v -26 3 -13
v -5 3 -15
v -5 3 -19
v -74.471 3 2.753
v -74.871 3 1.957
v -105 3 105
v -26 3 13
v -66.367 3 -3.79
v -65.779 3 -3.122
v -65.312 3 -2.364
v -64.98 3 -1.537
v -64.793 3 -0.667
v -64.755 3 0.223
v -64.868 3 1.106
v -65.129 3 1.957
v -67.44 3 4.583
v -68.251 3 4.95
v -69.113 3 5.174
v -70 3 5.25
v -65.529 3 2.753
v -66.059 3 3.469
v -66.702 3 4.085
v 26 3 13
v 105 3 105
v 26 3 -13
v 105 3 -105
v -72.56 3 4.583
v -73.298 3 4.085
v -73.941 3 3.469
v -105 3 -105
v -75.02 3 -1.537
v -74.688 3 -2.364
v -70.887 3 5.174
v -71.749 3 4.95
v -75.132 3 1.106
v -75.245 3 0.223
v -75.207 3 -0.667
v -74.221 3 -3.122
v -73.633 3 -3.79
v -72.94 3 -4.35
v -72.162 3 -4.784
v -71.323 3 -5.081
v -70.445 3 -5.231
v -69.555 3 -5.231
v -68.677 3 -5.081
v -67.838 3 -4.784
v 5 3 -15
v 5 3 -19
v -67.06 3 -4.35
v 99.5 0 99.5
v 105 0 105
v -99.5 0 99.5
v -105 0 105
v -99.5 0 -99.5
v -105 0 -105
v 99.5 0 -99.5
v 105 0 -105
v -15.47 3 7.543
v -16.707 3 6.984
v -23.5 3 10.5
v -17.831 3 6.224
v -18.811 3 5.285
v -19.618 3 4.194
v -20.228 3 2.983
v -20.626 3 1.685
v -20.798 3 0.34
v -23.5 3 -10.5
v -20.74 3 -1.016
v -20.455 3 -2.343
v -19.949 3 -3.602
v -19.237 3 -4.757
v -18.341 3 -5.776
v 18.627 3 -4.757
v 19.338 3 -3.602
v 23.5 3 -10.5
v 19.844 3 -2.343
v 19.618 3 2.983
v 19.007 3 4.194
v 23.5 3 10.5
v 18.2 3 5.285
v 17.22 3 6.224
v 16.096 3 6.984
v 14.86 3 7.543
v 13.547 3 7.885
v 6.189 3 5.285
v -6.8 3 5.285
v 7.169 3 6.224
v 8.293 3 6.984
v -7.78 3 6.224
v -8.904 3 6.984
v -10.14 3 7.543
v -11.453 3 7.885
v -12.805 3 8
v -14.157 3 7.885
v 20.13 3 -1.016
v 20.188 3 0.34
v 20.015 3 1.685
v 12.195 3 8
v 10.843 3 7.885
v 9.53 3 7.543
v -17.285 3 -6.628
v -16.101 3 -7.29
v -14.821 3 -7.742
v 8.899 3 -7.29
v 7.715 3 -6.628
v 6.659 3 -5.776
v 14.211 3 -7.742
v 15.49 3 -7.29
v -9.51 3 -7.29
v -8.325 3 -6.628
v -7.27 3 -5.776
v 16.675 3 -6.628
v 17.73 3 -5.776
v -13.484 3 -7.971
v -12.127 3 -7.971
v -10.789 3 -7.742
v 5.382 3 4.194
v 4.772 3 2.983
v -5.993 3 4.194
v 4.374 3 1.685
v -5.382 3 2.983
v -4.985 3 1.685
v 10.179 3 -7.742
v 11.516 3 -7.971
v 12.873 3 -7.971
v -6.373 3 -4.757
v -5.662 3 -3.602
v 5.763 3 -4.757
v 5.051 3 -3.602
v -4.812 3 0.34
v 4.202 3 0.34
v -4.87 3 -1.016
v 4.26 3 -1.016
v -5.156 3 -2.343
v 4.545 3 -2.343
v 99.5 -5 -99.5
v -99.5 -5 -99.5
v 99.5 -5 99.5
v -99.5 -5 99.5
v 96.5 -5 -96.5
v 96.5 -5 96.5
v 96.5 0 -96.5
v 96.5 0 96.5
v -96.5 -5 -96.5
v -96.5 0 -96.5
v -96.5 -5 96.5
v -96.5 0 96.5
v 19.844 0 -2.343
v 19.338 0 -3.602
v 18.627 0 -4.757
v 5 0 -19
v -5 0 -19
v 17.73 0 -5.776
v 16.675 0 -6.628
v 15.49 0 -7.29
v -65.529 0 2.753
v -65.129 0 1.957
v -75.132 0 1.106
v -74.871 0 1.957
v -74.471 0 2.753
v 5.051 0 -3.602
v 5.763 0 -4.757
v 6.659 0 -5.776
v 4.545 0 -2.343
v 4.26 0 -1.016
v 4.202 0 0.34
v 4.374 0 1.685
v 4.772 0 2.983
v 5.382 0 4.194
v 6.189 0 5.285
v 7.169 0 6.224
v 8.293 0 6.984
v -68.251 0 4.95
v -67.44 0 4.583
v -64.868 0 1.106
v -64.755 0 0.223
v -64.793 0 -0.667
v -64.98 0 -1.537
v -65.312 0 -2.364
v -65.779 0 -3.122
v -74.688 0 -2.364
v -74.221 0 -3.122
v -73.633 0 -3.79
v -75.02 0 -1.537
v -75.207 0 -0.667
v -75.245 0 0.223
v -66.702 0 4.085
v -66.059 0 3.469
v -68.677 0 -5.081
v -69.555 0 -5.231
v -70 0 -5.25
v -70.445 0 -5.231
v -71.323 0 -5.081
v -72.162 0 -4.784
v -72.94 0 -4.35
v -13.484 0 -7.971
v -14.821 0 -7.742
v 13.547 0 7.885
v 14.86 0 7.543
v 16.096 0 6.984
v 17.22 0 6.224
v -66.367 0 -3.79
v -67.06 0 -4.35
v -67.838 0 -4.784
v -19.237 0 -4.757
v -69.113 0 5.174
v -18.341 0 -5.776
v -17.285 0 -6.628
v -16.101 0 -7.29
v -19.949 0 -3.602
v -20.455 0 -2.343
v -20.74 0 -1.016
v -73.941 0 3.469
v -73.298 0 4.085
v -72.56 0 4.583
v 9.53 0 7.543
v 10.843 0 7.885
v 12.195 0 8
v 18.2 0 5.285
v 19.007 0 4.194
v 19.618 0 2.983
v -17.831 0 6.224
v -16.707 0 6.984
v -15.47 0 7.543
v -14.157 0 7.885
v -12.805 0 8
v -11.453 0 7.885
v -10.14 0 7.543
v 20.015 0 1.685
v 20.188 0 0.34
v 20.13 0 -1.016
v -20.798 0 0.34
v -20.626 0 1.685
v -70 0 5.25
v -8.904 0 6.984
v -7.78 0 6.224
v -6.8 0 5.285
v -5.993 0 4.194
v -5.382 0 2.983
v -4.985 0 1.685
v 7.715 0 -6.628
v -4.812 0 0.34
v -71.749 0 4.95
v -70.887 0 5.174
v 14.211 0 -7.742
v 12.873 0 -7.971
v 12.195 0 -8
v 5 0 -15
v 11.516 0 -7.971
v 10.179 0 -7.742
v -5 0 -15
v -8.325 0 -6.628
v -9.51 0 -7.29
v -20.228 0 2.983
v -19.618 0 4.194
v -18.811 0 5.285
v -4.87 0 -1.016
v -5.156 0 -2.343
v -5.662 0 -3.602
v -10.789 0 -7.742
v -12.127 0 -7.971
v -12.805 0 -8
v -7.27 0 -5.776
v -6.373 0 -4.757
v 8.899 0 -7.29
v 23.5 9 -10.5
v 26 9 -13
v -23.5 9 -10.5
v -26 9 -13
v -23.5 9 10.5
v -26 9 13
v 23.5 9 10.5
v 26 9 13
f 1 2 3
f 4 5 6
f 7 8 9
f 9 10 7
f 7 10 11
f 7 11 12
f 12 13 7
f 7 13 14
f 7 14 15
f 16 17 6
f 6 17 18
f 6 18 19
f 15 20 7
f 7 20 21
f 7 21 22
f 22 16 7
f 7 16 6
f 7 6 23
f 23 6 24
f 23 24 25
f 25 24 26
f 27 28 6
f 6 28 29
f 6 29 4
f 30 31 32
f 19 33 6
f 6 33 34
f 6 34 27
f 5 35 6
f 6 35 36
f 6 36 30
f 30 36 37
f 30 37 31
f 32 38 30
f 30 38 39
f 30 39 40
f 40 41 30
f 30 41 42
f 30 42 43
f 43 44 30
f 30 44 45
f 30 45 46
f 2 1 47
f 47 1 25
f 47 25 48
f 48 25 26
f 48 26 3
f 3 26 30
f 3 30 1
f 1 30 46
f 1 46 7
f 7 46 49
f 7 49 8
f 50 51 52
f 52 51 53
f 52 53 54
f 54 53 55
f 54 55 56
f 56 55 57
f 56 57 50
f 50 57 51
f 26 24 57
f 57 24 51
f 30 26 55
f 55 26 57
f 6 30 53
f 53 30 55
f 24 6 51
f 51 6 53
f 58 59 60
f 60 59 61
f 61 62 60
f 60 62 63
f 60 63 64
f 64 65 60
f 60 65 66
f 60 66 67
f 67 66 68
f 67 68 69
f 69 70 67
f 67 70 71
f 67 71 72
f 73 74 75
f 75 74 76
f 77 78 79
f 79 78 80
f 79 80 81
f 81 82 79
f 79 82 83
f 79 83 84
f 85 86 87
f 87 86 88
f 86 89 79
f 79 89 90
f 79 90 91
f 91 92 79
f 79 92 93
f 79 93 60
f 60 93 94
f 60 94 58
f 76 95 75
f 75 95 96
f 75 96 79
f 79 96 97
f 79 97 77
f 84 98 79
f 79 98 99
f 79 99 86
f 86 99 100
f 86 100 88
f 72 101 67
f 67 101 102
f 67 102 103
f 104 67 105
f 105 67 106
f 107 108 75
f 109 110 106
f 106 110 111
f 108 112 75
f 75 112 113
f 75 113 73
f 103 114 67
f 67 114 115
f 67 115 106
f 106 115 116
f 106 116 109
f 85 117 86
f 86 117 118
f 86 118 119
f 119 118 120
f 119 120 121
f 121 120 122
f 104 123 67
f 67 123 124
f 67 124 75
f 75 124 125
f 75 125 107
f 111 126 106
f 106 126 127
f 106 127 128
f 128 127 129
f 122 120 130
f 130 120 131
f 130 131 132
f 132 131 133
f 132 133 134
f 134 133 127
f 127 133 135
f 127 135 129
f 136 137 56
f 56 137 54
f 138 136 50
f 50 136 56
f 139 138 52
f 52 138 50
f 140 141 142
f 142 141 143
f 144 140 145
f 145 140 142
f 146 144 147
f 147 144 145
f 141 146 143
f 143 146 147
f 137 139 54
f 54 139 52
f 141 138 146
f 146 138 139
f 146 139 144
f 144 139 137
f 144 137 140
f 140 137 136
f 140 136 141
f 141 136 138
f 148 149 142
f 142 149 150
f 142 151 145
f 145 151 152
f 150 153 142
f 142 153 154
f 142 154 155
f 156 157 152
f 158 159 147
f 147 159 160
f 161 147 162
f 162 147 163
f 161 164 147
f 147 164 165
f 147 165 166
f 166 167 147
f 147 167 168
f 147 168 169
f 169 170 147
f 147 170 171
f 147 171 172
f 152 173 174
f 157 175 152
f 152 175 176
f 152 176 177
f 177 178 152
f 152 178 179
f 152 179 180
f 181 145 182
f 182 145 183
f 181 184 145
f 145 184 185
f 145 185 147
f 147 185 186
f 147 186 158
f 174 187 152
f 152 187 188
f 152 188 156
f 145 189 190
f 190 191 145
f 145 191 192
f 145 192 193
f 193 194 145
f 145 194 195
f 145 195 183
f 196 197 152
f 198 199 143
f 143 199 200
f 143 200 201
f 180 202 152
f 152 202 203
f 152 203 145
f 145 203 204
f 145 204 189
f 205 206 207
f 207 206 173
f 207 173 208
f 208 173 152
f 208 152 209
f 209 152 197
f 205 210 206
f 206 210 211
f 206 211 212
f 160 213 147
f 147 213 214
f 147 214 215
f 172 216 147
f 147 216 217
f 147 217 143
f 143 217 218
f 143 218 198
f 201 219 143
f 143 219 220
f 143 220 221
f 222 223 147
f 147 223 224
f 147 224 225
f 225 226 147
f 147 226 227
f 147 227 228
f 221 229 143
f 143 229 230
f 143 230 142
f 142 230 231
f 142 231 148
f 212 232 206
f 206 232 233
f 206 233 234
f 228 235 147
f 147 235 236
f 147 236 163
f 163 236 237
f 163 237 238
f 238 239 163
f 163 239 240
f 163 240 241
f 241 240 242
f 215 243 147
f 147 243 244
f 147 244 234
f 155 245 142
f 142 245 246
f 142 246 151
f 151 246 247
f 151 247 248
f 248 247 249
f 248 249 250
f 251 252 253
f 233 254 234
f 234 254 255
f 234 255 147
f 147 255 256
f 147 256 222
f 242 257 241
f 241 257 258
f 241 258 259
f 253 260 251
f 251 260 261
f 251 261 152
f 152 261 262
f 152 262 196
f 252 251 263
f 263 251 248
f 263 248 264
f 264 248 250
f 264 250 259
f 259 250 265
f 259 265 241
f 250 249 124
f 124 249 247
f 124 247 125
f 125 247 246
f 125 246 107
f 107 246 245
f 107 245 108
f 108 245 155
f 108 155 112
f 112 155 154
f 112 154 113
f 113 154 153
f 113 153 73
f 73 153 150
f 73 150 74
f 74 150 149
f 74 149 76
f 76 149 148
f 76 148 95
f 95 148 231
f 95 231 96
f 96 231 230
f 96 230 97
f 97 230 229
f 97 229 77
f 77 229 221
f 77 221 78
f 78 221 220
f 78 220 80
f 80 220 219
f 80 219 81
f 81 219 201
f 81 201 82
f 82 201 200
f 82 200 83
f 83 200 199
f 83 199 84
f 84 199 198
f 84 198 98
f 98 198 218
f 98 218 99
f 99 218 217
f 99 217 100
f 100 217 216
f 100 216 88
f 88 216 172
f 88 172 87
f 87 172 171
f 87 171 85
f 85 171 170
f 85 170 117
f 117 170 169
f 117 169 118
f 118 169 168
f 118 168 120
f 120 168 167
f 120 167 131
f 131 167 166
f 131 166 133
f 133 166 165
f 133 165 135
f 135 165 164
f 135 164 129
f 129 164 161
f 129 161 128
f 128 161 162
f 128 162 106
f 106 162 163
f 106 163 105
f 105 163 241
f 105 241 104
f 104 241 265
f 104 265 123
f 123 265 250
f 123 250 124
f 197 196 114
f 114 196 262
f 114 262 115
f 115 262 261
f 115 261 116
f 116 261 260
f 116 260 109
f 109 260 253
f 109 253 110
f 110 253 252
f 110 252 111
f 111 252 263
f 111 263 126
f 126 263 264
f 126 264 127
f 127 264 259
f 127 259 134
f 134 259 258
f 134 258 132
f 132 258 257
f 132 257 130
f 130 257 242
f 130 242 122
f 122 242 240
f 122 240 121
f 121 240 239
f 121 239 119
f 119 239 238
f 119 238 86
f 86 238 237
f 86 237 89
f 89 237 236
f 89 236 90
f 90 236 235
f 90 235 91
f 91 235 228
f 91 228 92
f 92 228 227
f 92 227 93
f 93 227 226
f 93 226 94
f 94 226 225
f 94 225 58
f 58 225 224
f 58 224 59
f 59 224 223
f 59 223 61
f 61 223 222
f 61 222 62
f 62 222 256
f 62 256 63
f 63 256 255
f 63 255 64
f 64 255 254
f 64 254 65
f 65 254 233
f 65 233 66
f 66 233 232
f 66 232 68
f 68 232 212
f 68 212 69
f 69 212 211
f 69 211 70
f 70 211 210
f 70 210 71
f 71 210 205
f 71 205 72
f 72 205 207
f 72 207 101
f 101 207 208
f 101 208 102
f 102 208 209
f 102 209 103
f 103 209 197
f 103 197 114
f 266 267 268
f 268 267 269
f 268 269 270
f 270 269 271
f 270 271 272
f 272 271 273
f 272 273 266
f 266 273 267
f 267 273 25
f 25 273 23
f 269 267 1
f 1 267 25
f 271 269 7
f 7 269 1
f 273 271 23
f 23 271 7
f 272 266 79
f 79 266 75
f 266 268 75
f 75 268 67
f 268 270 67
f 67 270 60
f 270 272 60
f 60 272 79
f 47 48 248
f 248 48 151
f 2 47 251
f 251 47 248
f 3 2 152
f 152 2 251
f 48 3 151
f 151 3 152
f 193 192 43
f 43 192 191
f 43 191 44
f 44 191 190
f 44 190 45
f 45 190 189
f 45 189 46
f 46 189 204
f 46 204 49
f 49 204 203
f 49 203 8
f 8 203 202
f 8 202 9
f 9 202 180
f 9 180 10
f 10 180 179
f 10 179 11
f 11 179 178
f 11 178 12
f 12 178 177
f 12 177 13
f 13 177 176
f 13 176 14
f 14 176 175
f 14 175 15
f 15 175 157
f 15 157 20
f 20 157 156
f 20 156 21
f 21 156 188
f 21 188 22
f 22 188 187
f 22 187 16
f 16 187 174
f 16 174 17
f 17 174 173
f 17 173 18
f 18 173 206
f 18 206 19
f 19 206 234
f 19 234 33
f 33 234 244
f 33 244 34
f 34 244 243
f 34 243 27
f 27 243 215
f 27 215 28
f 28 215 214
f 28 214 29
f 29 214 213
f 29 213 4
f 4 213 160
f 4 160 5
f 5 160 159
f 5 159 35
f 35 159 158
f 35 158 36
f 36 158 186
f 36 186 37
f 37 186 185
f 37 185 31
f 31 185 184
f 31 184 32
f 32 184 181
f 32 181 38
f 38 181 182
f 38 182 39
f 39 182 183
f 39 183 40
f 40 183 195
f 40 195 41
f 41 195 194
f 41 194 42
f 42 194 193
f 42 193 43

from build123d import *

# Parameters (mm, degrees)
SKETCH1_W           = 210
SKETCH1_H           = 210
BOSS_EXTRUDE1_DEPTH = 3
SKETCH2_W           = 199
SKETCH2_H           = 199
SKETCH2_W_2         = 193
SKETCH2_H_2         = 193
BOSS_EXTRUDE2_DEPTH = 5
SKETCH3_R           = 8
CUT_EXTRUDE1_DEPTH  = 149.707767114
SKETCH5_W           = 52
SKETCH5_H           = 26
SKETCH5_W_2         = 47
SKETCH5_H_2         = 21
BOSS_EXTRUDE4_DEPTH = 6
SKETCH8_W           = 10
SKETCH8_H           = 4
CUT_EXTRUDE2_DEPTH  = 149.707767114
SKETCH9_R           = 5.25
CUT_EXTRUDE3_DEPTH  = 149.707767114


with BuildPart() as part:
    # Sketch1 → Boss-Extrude1 (new body)
    with BuildSketch(Plane(origin=(0, 0, 0), x_dir=(1, 0, 0), z_dir=(0, 1, 0))):
        Rectangle(SKETCH1_W, SKETCH1_H)
    extrude(amount=BOSS_EXTRUDE1_DEPTH)

    # Sketch2 → Boss-Extrude2 (add)
    with BuildSketch(Plane.XZ):
        Rectangle(SKETCH2_W, SKETCH2_H)
        Rectangle(SKETCH2_W_2, SKETCH2_H_2, mode=Mode.SUBTRACT)
    extrude(amount=BOSS_EXTRUDE2_DEPTH)

    # Sketch3 → Cut-Extrude1 (cut, through all)
    with BuildSketch(Plane(origin=(0, 3, 0), x_dir=(1, 0, 0), z_dir=(0, 1, 0))):
        with Locations(Location((-12.805289864, 0, 0), (0, 0, 270))):
            Circle(SKETCH3_R)
        with Locations(Location((12.194710136, 0, 0), (0, 0, 270))):
            Circle(SKETCH3_R)
    extrude(amount=-CUT_EXTRUDE1_DEPTH, mode=Mode.SUBTRACT)

    # Sketch5 → Boss-Extrude4 (add)
    with BuildSketch(Plane(origin=(0, 3, 0), x_dir=(1, 0, 0), z_dir=(0, 1, 0))):
        Rectangle(SKETCH5_W, SKETCH5_H)
        Rectangle(SKETCH5_W_2, SKETCH5_H_2, mode=Mode.SUBTRACT)
    extrude(amount=BOSS_EXTRUDE4_DEPTH)

    # Sketch8 → Cut-Extrude2 (cut, through all)
    with BuildSketch(Plane(origin=(0, 3, 0), x_dir=(1, 0, 0), z_dir=(0, 1, 0))):
        with Locations((0, 17)):
            Rectangle(SKETCH8_W, SKETCH8_H)
    extrude(amount=-CUT_EXTRUDE2_DEPTH, mode=Mode.SUBTRACT)

    # Sketch9 → Cut-Extrude3 (cut, through all)
    with BuildSketch(Plane(origin=(0, 3, 0), x_dir=(1, 0, 0), z_dir=(0, 1, 0))):
        with Locations(Location((-70, 0, 0), (0, 0, 270))):
            Circle(SKETCH9_R)
    extrude(amount=-CUT_EXTRUDE3_DEPTH, mode=Mode.SUBTRACT)


solid = part.part
